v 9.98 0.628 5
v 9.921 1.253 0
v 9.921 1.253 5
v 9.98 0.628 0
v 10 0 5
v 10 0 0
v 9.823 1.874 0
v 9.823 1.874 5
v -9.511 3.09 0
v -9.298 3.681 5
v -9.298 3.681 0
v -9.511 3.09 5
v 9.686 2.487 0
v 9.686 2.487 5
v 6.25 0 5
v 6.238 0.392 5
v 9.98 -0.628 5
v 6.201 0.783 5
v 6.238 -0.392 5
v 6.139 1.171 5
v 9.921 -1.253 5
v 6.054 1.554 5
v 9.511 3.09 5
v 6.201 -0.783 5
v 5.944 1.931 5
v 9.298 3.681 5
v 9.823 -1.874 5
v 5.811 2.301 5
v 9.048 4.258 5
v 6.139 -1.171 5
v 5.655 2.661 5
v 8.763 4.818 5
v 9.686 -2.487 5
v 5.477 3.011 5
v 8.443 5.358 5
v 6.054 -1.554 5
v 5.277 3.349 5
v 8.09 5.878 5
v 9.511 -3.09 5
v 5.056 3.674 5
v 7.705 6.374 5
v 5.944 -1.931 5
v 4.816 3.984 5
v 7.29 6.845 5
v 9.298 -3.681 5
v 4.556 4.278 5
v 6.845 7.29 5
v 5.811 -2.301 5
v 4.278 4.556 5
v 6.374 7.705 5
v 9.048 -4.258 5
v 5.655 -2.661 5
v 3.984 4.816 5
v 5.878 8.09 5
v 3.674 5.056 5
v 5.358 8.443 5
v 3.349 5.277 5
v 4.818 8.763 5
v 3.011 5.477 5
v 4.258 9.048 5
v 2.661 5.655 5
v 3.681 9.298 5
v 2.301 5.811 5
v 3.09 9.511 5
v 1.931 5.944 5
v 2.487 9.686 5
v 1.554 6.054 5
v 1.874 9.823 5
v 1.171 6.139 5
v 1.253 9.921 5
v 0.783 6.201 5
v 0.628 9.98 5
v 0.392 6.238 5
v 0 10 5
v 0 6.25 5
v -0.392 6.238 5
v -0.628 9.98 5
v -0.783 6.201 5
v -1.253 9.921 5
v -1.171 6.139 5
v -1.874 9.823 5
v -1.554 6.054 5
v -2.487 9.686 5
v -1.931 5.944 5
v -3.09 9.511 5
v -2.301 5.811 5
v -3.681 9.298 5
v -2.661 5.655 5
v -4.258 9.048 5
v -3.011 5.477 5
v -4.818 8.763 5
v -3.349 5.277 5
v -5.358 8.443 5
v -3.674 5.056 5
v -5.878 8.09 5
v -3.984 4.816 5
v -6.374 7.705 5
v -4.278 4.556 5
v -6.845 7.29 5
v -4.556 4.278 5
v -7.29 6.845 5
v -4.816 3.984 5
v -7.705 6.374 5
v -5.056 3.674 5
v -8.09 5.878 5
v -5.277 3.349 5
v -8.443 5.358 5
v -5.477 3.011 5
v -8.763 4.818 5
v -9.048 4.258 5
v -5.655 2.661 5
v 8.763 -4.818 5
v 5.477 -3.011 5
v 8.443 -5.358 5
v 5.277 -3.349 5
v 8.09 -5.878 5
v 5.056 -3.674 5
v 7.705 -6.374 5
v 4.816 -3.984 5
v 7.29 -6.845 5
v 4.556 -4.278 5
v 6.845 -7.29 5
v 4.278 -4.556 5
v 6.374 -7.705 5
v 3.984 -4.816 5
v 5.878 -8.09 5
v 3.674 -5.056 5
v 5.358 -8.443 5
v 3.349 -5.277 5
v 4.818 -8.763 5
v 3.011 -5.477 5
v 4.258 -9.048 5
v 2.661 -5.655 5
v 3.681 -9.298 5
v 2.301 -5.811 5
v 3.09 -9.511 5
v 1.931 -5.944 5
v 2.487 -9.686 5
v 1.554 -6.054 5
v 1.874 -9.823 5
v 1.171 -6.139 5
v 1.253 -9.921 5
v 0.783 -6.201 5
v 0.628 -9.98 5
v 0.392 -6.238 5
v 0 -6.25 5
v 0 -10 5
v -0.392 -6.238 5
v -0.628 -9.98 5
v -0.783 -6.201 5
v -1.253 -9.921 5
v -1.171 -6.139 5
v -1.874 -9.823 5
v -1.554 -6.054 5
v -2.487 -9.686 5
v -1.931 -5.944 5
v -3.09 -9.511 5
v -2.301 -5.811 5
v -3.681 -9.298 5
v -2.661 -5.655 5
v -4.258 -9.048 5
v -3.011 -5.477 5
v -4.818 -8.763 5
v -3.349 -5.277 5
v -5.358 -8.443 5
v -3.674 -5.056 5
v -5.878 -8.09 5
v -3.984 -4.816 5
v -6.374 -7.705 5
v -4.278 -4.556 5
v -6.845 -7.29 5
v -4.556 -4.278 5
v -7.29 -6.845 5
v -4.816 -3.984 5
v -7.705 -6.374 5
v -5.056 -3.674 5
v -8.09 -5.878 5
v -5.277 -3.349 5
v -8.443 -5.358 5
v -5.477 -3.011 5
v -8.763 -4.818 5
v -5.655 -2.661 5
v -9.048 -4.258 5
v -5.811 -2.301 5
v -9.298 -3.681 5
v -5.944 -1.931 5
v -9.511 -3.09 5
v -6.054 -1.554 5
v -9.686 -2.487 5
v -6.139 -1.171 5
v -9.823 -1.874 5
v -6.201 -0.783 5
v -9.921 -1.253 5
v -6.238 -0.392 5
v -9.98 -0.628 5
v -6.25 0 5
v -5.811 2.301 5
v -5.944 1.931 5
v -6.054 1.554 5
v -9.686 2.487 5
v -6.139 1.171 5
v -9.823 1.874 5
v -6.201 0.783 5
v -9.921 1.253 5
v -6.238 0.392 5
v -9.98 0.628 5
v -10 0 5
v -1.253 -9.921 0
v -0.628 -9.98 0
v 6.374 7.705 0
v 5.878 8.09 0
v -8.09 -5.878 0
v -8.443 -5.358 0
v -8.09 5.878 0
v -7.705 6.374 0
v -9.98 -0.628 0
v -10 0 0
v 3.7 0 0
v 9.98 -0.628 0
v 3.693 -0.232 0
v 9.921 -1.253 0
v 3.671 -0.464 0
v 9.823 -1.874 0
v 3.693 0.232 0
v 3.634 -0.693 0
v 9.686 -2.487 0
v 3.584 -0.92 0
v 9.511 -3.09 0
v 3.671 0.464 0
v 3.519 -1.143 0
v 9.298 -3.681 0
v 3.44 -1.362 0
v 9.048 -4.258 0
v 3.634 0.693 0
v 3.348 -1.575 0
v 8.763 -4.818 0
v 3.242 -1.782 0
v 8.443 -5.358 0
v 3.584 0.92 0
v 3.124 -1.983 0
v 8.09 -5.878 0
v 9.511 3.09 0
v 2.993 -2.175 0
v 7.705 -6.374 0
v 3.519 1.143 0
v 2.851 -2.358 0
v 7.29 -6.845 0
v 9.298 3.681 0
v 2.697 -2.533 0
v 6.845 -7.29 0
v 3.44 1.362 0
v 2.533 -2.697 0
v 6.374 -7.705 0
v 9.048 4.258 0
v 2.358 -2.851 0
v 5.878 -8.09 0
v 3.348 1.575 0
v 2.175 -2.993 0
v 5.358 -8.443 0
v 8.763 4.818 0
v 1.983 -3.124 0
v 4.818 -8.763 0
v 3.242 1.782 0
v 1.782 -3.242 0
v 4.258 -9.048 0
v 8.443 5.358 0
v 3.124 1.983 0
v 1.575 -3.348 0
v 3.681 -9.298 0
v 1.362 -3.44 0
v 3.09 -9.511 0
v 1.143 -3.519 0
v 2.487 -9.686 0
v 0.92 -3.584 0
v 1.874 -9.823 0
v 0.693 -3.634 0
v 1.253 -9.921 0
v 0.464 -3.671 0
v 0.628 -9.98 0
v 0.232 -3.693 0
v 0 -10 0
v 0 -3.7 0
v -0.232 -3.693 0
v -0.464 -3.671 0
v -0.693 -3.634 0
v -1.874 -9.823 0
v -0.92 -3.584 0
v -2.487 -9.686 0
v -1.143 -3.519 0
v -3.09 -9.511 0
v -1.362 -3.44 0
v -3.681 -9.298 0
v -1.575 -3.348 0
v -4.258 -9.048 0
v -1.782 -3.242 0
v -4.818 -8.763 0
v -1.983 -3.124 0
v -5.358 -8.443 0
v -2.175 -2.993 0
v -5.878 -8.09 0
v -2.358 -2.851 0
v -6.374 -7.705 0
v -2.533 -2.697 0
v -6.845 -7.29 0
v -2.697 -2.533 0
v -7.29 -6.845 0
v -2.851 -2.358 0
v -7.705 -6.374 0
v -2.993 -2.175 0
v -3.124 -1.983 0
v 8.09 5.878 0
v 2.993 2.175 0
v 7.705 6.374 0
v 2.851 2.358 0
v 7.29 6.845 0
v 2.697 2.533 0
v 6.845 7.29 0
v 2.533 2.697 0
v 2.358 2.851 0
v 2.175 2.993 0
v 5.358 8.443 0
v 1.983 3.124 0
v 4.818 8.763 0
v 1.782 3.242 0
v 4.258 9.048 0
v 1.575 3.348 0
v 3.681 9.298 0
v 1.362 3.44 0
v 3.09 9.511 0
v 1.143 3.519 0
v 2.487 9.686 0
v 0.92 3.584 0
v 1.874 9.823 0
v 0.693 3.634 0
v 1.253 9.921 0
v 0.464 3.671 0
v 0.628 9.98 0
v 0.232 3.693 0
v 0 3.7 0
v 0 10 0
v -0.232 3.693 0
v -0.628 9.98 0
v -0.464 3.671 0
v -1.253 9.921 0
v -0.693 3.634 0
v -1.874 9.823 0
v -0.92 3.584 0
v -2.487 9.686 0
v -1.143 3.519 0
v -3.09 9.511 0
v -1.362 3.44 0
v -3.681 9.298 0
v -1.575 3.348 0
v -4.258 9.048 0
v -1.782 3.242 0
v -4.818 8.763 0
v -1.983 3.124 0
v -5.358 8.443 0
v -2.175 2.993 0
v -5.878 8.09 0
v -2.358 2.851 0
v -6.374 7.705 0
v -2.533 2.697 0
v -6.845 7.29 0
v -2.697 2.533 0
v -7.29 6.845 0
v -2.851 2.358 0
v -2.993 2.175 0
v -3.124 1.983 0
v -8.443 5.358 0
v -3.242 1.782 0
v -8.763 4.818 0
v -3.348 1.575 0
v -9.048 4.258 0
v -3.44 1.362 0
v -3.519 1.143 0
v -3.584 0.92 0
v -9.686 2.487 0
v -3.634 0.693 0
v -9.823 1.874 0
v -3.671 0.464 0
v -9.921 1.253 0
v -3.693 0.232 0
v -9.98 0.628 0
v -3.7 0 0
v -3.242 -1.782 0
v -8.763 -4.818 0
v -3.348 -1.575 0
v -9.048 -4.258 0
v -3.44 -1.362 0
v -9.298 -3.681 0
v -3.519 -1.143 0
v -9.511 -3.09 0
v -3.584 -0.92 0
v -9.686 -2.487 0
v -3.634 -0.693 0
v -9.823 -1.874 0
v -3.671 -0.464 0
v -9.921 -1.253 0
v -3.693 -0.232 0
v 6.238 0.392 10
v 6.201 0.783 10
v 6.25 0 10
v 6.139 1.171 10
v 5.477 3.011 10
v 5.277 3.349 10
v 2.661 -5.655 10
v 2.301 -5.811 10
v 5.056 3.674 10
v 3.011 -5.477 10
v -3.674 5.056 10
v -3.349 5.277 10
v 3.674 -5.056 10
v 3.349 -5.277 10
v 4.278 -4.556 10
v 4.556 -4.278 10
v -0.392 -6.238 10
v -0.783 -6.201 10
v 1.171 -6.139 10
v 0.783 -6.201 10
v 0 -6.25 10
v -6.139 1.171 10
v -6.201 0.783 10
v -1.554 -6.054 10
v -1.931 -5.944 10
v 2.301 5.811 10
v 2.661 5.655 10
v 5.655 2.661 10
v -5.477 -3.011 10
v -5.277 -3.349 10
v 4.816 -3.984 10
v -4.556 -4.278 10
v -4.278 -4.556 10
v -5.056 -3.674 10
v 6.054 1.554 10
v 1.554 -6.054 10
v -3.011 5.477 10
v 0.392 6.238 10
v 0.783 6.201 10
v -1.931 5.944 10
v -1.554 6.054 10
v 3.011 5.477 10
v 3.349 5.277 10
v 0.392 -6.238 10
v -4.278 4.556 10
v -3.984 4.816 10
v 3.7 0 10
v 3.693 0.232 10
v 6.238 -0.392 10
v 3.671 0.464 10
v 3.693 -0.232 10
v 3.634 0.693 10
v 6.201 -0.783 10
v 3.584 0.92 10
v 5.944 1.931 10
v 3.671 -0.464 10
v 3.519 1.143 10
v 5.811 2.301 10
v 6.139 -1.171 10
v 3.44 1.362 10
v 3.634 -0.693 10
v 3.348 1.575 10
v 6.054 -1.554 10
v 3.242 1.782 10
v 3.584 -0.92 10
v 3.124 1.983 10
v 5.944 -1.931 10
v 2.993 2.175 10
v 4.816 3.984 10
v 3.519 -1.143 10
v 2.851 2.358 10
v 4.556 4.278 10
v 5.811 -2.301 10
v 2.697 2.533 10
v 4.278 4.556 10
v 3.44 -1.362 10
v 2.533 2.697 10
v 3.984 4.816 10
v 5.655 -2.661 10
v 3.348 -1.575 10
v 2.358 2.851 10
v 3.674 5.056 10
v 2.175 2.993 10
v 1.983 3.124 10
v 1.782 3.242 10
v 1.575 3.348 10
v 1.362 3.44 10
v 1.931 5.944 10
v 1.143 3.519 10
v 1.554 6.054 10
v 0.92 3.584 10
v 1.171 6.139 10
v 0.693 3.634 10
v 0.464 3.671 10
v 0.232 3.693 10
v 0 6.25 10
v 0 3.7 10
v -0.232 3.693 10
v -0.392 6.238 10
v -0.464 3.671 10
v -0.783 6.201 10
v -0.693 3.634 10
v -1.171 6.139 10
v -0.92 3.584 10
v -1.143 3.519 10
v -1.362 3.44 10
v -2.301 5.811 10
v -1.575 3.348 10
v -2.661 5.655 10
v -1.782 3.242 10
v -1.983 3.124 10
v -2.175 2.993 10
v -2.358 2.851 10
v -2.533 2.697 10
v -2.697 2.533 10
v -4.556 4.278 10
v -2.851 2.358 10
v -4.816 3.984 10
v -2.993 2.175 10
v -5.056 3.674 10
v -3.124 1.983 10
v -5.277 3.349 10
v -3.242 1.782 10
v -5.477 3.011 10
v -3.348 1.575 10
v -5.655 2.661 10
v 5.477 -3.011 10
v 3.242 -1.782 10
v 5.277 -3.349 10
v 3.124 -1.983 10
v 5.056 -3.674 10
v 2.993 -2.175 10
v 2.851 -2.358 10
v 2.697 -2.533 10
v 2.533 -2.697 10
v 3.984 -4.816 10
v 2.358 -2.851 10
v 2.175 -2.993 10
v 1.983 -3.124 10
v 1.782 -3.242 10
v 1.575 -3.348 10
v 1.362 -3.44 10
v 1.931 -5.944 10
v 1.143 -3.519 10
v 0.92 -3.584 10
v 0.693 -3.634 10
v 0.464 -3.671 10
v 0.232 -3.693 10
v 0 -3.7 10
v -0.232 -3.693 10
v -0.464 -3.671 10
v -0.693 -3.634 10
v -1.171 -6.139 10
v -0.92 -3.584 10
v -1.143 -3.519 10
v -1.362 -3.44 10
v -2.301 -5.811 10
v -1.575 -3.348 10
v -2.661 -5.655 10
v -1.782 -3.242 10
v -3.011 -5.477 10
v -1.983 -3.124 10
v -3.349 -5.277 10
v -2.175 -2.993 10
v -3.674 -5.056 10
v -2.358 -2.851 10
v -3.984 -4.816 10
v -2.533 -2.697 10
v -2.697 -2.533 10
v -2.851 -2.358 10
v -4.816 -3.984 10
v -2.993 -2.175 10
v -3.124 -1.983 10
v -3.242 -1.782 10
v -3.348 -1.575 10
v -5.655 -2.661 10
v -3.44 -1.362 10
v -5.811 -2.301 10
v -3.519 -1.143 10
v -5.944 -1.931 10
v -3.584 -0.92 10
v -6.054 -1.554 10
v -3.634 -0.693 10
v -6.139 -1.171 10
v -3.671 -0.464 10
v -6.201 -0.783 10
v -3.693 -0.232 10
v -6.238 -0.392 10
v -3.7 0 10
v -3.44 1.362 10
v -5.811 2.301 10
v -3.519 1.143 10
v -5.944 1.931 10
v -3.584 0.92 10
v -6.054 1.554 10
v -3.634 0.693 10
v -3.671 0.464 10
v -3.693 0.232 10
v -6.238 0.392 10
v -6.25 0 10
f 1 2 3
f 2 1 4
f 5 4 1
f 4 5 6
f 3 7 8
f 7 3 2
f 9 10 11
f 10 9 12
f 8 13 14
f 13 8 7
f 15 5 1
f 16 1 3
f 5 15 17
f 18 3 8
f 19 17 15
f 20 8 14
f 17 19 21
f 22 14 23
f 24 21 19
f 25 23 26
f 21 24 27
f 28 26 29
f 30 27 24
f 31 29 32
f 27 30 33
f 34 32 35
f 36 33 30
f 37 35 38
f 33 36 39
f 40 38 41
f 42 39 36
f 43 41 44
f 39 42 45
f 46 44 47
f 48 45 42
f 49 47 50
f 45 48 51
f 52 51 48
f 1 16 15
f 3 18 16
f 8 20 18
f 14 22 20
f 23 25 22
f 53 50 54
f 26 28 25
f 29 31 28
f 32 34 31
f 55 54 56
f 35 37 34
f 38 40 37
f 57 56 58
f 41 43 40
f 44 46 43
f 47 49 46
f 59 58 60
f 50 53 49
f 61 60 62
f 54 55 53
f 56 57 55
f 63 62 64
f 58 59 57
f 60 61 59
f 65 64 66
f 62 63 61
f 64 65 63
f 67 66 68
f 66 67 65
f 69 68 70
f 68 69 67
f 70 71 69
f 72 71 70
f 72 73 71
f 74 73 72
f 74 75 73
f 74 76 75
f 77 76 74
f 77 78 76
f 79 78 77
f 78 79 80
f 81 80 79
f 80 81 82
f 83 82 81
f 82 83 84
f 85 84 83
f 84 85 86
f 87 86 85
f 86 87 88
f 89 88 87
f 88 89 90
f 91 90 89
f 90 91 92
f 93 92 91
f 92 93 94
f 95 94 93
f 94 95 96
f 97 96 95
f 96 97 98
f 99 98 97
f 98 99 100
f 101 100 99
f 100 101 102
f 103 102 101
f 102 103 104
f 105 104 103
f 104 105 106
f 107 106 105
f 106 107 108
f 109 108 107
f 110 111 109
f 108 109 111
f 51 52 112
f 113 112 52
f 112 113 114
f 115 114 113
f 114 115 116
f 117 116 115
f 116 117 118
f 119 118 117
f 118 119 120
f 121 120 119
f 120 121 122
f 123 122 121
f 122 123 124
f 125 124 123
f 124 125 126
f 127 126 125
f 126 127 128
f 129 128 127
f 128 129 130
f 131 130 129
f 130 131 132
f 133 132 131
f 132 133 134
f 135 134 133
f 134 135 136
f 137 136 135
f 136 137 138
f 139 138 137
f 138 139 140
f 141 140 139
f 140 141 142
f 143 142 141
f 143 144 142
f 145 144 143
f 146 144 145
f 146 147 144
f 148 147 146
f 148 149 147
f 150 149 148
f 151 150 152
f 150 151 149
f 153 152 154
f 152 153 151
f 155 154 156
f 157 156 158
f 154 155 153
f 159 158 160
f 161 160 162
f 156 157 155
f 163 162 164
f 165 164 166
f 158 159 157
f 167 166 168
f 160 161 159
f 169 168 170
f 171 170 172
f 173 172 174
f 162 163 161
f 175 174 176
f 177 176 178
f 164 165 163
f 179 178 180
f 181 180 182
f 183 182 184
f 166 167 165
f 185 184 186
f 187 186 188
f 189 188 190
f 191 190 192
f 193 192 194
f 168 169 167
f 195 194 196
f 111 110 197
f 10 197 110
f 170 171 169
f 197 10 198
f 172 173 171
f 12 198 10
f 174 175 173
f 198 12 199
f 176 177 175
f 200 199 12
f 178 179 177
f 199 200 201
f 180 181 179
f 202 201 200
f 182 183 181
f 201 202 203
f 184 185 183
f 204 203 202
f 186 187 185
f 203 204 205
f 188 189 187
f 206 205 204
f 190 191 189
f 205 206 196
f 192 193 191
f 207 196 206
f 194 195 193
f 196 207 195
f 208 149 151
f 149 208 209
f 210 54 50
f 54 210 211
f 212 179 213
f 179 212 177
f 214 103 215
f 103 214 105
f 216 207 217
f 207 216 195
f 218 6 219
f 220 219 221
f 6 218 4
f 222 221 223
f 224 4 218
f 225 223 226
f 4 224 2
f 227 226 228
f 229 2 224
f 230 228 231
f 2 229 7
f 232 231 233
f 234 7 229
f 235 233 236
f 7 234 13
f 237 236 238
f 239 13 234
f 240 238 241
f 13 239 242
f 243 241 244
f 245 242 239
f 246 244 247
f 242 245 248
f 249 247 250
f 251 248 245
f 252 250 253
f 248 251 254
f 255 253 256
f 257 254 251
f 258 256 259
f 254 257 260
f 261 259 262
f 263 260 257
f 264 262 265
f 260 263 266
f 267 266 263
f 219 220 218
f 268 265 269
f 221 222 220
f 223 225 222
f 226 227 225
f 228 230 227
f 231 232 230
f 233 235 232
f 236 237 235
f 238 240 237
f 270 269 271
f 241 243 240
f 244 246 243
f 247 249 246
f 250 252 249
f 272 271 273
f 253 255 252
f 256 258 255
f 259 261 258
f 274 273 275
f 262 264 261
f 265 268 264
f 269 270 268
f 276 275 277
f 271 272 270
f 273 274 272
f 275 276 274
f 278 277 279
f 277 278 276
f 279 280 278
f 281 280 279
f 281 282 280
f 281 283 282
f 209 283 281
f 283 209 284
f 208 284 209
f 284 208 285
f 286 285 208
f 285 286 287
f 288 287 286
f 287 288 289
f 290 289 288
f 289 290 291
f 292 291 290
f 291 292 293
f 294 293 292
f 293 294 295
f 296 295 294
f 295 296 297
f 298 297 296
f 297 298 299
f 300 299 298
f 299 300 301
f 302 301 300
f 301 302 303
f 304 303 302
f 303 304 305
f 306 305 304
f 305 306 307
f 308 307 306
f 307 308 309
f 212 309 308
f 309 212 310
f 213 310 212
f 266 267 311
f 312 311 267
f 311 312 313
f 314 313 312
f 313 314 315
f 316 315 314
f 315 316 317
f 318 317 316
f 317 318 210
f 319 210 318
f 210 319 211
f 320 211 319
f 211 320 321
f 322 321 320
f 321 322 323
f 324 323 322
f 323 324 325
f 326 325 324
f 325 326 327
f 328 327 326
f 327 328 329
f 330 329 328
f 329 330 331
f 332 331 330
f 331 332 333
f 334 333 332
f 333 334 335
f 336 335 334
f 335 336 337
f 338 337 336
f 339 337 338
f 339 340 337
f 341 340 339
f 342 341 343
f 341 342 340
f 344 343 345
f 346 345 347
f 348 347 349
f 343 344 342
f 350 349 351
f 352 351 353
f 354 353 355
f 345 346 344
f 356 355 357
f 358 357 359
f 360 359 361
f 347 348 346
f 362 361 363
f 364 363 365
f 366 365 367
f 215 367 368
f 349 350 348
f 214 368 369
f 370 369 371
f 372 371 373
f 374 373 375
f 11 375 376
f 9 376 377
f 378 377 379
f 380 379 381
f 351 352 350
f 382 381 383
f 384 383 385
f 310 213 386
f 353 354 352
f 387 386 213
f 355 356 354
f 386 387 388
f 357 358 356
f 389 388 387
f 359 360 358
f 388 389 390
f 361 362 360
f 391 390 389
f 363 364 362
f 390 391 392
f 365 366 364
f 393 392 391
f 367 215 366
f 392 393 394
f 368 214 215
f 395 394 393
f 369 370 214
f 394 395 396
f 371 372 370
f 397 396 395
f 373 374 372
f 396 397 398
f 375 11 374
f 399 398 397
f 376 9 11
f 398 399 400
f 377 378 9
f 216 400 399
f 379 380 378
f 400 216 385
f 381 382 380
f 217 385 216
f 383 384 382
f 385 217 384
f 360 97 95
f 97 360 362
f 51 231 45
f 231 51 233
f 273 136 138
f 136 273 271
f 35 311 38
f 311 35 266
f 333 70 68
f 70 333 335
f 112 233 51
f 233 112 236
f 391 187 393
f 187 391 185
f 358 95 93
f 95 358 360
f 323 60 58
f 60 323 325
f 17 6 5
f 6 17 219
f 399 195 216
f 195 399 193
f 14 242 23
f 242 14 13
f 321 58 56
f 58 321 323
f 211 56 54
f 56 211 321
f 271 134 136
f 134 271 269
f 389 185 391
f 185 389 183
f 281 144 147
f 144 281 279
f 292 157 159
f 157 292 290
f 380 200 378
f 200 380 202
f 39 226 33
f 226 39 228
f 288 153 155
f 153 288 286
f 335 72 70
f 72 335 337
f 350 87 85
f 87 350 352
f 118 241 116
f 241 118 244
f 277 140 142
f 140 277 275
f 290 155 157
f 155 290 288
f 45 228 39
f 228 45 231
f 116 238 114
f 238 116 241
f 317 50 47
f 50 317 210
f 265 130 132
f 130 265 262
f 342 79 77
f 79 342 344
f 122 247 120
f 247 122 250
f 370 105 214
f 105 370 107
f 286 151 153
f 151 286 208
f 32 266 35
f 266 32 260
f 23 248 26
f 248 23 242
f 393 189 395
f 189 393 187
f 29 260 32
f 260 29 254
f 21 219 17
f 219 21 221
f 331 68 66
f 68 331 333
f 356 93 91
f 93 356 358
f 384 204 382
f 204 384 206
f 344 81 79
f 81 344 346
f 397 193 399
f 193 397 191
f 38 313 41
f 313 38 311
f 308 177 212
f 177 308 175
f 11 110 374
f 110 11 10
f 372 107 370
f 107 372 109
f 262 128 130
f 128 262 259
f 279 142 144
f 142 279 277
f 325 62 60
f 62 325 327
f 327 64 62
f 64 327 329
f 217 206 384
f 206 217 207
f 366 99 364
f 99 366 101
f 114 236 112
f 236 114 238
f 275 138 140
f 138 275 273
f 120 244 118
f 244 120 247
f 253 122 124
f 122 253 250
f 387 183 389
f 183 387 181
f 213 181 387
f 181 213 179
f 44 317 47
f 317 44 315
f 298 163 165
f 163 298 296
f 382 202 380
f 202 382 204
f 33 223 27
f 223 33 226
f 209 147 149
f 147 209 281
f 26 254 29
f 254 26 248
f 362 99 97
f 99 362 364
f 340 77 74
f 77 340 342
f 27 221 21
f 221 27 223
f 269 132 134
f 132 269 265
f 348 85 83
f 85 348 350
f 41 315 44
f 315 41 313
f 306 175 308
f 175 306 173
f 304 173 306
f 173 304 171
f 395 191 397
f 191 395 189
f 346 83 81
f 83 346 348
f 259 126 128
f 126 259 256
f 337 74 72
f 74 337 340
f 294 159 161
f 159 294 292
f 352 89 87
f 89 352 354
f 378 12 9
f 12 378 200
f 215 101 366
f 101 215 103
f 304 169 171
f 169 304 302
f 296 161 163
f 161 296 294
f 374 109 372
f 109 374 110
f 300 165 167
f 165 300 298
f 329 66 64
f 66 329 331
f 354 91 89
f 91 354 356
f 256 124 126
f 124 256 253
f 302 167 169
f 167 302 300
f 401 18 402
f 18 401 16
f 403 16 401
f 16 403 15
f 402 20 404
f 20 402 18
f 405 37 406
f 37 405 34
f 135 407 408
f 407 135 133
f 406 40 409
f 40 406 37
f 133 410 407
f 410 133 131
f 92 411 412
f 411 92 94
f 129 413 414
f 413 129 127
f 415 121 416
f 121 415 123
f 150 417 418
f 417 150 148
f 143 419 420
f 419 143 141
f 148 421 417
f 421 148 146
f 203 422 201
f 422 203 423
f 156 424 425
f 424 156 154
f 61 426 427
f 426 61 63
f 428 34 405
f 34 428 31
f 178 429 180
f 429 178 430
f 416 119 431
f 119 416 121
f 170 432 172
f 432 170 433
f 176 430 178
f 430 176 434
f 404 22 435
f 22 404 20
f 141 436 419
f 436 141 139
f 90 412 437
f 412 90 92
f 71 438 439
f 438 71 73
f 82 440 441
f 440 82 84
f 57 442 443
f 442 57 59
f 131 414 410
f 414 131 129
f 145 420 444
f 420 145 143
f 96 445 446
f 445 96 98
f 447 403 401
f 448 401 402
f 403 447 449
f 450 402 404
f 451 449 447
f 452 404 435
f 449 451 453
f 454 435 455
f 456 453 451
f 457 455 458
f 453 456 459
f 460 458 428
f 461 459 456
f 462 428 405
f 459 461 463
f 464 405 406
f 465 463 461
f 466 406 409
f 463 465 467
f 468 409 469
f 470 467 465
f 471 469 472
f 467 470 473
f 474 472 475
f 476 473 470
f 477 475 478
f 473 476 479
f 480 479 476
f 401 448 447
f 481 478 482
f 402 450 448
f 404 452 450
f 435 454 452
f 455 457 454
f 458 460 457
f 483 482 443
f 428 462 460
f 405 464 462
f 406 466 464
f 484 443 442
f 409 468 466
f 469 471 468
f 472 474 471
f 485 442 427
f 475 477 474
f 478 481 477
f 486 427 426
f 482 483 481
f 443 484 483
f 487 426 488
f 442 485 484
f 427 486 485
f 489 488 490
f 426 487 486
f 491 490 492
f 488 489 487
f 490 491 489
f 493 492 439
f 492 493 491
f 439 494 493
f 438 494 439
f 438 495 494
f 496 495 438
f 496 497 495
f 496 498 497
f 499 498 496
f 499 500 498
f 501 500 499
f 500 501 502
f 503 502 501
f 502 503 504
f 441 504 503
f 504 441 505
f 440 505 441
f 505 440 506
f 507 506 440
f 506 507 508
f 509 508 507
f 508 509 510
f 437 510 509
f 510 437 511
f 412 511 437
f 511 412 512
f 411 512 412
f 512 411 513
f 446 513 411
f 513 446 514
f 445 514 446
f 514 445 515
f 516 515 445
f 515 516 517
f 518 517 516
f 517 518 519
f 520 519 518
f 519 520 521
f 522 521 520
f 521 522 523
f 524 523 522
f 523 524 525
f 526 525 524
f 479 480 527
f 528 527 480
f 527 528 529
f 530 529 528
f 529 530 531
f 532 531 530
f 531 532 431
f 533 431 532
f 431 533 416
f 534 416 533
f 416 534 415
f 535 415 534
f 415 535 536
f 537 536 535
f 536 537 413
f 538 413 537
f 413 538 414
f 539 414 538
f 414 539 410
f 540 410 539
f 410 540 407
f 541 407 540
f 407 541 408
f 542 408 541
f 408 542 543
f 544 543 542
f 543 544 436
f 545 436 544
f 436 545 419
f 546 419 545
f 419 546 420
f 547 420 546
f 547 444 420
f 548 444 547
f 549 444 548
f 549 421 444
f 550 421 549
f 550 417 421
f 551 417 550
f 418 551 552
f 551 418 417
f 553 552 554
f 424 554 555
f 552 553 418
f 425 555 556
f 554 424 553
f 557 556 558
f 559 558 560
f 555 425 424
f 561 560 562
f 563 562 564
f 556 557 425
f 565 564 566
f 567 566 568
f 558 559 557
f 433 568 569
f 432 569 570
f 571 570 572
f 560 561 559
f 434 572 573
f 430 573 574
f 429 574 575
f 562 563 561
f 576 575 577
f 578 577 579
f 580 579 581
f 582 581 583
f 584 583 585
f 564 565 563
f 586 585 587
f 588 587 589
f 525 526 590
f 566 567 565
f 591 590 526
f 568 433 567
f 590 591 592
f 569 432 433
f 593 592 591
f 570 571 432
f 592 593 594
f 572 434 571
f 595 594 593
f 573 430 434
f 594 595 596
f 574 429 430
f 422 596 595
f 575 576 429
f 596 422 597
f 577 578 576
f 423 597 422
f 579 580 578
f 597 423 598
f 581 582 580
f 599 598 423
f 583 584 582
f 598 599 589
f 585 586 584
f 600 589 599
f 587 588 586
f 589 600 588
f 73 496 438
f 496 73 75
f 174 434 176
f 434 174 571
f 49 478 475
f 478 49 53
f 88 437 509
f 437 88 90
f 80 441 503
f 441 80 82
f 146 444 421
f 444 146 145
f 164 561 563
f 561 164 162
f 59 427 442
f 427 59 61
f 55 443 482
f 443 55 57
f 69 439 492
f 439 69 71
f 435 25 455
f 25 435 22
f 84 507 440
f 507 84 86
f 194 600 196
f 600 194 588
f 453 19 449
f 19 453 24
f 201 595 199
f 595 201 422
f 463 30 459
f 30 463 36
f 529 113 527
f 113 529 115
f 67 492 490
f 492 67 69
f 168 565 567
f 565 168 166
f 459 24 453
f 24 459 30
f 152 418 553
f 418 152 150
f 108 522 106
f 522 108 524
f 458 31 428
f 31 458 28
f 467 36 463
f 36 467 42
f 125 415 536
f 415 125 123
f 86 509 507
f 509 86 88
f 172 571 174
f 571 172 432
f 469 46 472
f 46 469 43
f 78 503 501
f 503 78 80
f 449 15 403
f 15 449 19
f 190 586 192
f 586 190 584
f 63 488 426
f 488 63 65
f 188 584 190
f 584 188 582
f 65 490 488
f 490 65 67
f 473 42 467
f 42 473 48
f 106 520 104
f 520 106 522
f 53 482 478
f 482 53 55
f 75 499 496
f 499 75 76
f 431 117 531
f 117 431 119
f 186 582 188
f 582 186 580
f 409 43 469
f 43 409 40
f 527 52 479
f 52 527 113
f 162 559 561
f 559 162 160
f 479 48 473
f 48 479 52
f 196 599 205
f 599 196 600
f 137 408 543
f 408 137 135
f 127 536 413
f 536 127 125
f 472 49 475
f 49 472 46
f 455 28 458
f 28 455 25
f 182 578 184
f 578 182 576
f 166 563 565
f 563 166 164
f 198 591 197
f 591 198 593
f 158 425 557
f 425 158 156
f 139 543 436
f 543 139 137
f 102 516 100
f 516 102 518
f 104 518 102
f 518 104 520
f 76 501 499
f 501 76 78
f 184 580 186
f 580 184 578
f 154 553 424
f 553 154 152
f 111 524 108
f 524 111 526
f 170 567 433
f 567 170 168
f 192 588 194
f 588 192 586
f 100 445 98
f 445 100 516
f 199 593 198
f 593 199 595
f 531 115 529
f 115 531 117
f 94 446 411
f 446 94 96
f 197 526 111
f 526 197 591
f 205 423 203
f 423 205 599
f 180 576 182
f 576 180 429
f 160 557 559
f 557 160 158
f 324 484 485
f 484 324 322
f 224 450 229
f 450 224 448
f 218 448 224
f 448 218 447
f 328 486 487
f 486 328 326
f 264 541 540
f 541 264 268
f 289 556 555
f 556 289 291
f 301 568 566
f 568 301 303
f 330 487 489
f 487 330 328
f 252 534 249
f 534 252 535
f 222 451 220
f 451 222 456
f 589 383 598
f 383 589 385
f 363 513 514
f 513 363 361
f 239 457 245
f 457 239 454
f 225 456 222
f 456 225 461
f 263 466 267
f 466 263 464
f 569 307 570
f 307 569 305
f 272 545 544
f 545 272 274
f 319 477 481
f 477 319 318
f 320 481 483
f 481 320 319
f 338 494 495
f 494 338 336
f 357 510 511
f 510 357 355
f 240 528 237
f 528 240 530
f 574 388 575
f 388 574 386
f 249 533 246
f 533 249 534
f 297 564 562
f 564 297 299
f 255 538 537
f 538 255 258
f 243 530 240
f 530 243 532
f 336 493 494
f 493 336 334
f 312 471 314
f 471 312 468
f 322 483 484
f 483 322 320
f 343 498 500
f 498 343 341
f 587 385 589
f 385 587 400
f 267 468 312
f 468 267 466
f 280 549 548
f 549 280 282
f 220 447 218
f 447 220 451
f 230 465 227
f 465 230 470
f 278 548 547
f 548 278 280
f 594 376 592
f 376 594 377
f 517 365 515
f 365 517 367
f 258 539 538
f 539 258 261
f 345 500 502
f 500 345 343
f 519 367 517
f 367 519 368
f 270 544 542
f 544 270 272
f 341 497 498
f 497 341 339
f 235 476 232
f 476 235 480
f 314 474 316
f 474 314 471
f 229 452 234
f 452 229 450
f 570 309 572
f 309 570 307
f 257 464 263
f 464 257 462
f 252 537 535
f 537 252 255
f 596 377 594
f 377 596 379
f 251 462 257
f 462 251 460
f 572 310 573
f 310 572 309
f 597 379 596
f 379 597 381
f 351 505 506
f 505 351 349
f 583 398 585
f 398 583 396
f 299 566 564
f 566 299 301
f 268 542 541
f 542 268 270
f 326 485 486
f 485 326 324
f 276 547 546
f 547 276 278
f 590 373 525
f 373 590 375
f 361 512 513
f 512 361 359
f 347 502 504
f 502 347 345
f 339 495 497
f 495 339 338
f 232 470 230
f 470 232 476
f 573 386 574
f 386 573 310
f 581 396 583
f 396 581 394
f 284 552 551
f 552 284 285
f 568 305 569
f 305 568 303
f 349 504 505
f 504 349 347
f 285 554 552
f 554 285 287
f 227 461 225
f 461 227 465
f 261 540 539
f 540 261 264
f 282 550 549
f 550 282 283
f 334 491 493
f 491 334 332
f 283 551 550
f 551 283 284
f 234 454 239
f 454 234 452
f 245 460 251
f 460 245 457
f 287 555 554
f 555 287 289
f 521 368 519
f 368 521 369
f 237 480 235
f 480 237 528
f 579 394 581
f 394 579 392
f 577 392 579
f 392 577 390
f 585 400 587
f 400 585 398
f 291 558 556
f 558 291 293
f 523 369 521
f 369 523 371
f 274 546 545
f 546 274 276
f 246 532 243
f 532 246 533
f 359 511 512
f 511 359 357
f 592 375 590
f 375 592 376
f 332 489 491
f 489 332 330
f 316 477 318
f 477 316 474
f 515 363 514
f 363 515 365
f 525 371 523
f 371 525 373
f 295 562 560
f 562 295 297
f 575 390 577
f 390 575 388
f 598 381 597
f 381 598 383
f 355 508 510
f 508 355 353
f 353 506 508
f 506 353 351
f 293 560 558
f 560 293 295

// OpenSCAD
$fn = 100; 


difference() {
    union() {
        cylinder(h=5, d=20);
        translate([0, 0, 5])
        cylinder(h=5, d=12.5);

    }   
    
    
    translate([0, 0, -1])
    cylinder(h=12, d=7.4);
}
